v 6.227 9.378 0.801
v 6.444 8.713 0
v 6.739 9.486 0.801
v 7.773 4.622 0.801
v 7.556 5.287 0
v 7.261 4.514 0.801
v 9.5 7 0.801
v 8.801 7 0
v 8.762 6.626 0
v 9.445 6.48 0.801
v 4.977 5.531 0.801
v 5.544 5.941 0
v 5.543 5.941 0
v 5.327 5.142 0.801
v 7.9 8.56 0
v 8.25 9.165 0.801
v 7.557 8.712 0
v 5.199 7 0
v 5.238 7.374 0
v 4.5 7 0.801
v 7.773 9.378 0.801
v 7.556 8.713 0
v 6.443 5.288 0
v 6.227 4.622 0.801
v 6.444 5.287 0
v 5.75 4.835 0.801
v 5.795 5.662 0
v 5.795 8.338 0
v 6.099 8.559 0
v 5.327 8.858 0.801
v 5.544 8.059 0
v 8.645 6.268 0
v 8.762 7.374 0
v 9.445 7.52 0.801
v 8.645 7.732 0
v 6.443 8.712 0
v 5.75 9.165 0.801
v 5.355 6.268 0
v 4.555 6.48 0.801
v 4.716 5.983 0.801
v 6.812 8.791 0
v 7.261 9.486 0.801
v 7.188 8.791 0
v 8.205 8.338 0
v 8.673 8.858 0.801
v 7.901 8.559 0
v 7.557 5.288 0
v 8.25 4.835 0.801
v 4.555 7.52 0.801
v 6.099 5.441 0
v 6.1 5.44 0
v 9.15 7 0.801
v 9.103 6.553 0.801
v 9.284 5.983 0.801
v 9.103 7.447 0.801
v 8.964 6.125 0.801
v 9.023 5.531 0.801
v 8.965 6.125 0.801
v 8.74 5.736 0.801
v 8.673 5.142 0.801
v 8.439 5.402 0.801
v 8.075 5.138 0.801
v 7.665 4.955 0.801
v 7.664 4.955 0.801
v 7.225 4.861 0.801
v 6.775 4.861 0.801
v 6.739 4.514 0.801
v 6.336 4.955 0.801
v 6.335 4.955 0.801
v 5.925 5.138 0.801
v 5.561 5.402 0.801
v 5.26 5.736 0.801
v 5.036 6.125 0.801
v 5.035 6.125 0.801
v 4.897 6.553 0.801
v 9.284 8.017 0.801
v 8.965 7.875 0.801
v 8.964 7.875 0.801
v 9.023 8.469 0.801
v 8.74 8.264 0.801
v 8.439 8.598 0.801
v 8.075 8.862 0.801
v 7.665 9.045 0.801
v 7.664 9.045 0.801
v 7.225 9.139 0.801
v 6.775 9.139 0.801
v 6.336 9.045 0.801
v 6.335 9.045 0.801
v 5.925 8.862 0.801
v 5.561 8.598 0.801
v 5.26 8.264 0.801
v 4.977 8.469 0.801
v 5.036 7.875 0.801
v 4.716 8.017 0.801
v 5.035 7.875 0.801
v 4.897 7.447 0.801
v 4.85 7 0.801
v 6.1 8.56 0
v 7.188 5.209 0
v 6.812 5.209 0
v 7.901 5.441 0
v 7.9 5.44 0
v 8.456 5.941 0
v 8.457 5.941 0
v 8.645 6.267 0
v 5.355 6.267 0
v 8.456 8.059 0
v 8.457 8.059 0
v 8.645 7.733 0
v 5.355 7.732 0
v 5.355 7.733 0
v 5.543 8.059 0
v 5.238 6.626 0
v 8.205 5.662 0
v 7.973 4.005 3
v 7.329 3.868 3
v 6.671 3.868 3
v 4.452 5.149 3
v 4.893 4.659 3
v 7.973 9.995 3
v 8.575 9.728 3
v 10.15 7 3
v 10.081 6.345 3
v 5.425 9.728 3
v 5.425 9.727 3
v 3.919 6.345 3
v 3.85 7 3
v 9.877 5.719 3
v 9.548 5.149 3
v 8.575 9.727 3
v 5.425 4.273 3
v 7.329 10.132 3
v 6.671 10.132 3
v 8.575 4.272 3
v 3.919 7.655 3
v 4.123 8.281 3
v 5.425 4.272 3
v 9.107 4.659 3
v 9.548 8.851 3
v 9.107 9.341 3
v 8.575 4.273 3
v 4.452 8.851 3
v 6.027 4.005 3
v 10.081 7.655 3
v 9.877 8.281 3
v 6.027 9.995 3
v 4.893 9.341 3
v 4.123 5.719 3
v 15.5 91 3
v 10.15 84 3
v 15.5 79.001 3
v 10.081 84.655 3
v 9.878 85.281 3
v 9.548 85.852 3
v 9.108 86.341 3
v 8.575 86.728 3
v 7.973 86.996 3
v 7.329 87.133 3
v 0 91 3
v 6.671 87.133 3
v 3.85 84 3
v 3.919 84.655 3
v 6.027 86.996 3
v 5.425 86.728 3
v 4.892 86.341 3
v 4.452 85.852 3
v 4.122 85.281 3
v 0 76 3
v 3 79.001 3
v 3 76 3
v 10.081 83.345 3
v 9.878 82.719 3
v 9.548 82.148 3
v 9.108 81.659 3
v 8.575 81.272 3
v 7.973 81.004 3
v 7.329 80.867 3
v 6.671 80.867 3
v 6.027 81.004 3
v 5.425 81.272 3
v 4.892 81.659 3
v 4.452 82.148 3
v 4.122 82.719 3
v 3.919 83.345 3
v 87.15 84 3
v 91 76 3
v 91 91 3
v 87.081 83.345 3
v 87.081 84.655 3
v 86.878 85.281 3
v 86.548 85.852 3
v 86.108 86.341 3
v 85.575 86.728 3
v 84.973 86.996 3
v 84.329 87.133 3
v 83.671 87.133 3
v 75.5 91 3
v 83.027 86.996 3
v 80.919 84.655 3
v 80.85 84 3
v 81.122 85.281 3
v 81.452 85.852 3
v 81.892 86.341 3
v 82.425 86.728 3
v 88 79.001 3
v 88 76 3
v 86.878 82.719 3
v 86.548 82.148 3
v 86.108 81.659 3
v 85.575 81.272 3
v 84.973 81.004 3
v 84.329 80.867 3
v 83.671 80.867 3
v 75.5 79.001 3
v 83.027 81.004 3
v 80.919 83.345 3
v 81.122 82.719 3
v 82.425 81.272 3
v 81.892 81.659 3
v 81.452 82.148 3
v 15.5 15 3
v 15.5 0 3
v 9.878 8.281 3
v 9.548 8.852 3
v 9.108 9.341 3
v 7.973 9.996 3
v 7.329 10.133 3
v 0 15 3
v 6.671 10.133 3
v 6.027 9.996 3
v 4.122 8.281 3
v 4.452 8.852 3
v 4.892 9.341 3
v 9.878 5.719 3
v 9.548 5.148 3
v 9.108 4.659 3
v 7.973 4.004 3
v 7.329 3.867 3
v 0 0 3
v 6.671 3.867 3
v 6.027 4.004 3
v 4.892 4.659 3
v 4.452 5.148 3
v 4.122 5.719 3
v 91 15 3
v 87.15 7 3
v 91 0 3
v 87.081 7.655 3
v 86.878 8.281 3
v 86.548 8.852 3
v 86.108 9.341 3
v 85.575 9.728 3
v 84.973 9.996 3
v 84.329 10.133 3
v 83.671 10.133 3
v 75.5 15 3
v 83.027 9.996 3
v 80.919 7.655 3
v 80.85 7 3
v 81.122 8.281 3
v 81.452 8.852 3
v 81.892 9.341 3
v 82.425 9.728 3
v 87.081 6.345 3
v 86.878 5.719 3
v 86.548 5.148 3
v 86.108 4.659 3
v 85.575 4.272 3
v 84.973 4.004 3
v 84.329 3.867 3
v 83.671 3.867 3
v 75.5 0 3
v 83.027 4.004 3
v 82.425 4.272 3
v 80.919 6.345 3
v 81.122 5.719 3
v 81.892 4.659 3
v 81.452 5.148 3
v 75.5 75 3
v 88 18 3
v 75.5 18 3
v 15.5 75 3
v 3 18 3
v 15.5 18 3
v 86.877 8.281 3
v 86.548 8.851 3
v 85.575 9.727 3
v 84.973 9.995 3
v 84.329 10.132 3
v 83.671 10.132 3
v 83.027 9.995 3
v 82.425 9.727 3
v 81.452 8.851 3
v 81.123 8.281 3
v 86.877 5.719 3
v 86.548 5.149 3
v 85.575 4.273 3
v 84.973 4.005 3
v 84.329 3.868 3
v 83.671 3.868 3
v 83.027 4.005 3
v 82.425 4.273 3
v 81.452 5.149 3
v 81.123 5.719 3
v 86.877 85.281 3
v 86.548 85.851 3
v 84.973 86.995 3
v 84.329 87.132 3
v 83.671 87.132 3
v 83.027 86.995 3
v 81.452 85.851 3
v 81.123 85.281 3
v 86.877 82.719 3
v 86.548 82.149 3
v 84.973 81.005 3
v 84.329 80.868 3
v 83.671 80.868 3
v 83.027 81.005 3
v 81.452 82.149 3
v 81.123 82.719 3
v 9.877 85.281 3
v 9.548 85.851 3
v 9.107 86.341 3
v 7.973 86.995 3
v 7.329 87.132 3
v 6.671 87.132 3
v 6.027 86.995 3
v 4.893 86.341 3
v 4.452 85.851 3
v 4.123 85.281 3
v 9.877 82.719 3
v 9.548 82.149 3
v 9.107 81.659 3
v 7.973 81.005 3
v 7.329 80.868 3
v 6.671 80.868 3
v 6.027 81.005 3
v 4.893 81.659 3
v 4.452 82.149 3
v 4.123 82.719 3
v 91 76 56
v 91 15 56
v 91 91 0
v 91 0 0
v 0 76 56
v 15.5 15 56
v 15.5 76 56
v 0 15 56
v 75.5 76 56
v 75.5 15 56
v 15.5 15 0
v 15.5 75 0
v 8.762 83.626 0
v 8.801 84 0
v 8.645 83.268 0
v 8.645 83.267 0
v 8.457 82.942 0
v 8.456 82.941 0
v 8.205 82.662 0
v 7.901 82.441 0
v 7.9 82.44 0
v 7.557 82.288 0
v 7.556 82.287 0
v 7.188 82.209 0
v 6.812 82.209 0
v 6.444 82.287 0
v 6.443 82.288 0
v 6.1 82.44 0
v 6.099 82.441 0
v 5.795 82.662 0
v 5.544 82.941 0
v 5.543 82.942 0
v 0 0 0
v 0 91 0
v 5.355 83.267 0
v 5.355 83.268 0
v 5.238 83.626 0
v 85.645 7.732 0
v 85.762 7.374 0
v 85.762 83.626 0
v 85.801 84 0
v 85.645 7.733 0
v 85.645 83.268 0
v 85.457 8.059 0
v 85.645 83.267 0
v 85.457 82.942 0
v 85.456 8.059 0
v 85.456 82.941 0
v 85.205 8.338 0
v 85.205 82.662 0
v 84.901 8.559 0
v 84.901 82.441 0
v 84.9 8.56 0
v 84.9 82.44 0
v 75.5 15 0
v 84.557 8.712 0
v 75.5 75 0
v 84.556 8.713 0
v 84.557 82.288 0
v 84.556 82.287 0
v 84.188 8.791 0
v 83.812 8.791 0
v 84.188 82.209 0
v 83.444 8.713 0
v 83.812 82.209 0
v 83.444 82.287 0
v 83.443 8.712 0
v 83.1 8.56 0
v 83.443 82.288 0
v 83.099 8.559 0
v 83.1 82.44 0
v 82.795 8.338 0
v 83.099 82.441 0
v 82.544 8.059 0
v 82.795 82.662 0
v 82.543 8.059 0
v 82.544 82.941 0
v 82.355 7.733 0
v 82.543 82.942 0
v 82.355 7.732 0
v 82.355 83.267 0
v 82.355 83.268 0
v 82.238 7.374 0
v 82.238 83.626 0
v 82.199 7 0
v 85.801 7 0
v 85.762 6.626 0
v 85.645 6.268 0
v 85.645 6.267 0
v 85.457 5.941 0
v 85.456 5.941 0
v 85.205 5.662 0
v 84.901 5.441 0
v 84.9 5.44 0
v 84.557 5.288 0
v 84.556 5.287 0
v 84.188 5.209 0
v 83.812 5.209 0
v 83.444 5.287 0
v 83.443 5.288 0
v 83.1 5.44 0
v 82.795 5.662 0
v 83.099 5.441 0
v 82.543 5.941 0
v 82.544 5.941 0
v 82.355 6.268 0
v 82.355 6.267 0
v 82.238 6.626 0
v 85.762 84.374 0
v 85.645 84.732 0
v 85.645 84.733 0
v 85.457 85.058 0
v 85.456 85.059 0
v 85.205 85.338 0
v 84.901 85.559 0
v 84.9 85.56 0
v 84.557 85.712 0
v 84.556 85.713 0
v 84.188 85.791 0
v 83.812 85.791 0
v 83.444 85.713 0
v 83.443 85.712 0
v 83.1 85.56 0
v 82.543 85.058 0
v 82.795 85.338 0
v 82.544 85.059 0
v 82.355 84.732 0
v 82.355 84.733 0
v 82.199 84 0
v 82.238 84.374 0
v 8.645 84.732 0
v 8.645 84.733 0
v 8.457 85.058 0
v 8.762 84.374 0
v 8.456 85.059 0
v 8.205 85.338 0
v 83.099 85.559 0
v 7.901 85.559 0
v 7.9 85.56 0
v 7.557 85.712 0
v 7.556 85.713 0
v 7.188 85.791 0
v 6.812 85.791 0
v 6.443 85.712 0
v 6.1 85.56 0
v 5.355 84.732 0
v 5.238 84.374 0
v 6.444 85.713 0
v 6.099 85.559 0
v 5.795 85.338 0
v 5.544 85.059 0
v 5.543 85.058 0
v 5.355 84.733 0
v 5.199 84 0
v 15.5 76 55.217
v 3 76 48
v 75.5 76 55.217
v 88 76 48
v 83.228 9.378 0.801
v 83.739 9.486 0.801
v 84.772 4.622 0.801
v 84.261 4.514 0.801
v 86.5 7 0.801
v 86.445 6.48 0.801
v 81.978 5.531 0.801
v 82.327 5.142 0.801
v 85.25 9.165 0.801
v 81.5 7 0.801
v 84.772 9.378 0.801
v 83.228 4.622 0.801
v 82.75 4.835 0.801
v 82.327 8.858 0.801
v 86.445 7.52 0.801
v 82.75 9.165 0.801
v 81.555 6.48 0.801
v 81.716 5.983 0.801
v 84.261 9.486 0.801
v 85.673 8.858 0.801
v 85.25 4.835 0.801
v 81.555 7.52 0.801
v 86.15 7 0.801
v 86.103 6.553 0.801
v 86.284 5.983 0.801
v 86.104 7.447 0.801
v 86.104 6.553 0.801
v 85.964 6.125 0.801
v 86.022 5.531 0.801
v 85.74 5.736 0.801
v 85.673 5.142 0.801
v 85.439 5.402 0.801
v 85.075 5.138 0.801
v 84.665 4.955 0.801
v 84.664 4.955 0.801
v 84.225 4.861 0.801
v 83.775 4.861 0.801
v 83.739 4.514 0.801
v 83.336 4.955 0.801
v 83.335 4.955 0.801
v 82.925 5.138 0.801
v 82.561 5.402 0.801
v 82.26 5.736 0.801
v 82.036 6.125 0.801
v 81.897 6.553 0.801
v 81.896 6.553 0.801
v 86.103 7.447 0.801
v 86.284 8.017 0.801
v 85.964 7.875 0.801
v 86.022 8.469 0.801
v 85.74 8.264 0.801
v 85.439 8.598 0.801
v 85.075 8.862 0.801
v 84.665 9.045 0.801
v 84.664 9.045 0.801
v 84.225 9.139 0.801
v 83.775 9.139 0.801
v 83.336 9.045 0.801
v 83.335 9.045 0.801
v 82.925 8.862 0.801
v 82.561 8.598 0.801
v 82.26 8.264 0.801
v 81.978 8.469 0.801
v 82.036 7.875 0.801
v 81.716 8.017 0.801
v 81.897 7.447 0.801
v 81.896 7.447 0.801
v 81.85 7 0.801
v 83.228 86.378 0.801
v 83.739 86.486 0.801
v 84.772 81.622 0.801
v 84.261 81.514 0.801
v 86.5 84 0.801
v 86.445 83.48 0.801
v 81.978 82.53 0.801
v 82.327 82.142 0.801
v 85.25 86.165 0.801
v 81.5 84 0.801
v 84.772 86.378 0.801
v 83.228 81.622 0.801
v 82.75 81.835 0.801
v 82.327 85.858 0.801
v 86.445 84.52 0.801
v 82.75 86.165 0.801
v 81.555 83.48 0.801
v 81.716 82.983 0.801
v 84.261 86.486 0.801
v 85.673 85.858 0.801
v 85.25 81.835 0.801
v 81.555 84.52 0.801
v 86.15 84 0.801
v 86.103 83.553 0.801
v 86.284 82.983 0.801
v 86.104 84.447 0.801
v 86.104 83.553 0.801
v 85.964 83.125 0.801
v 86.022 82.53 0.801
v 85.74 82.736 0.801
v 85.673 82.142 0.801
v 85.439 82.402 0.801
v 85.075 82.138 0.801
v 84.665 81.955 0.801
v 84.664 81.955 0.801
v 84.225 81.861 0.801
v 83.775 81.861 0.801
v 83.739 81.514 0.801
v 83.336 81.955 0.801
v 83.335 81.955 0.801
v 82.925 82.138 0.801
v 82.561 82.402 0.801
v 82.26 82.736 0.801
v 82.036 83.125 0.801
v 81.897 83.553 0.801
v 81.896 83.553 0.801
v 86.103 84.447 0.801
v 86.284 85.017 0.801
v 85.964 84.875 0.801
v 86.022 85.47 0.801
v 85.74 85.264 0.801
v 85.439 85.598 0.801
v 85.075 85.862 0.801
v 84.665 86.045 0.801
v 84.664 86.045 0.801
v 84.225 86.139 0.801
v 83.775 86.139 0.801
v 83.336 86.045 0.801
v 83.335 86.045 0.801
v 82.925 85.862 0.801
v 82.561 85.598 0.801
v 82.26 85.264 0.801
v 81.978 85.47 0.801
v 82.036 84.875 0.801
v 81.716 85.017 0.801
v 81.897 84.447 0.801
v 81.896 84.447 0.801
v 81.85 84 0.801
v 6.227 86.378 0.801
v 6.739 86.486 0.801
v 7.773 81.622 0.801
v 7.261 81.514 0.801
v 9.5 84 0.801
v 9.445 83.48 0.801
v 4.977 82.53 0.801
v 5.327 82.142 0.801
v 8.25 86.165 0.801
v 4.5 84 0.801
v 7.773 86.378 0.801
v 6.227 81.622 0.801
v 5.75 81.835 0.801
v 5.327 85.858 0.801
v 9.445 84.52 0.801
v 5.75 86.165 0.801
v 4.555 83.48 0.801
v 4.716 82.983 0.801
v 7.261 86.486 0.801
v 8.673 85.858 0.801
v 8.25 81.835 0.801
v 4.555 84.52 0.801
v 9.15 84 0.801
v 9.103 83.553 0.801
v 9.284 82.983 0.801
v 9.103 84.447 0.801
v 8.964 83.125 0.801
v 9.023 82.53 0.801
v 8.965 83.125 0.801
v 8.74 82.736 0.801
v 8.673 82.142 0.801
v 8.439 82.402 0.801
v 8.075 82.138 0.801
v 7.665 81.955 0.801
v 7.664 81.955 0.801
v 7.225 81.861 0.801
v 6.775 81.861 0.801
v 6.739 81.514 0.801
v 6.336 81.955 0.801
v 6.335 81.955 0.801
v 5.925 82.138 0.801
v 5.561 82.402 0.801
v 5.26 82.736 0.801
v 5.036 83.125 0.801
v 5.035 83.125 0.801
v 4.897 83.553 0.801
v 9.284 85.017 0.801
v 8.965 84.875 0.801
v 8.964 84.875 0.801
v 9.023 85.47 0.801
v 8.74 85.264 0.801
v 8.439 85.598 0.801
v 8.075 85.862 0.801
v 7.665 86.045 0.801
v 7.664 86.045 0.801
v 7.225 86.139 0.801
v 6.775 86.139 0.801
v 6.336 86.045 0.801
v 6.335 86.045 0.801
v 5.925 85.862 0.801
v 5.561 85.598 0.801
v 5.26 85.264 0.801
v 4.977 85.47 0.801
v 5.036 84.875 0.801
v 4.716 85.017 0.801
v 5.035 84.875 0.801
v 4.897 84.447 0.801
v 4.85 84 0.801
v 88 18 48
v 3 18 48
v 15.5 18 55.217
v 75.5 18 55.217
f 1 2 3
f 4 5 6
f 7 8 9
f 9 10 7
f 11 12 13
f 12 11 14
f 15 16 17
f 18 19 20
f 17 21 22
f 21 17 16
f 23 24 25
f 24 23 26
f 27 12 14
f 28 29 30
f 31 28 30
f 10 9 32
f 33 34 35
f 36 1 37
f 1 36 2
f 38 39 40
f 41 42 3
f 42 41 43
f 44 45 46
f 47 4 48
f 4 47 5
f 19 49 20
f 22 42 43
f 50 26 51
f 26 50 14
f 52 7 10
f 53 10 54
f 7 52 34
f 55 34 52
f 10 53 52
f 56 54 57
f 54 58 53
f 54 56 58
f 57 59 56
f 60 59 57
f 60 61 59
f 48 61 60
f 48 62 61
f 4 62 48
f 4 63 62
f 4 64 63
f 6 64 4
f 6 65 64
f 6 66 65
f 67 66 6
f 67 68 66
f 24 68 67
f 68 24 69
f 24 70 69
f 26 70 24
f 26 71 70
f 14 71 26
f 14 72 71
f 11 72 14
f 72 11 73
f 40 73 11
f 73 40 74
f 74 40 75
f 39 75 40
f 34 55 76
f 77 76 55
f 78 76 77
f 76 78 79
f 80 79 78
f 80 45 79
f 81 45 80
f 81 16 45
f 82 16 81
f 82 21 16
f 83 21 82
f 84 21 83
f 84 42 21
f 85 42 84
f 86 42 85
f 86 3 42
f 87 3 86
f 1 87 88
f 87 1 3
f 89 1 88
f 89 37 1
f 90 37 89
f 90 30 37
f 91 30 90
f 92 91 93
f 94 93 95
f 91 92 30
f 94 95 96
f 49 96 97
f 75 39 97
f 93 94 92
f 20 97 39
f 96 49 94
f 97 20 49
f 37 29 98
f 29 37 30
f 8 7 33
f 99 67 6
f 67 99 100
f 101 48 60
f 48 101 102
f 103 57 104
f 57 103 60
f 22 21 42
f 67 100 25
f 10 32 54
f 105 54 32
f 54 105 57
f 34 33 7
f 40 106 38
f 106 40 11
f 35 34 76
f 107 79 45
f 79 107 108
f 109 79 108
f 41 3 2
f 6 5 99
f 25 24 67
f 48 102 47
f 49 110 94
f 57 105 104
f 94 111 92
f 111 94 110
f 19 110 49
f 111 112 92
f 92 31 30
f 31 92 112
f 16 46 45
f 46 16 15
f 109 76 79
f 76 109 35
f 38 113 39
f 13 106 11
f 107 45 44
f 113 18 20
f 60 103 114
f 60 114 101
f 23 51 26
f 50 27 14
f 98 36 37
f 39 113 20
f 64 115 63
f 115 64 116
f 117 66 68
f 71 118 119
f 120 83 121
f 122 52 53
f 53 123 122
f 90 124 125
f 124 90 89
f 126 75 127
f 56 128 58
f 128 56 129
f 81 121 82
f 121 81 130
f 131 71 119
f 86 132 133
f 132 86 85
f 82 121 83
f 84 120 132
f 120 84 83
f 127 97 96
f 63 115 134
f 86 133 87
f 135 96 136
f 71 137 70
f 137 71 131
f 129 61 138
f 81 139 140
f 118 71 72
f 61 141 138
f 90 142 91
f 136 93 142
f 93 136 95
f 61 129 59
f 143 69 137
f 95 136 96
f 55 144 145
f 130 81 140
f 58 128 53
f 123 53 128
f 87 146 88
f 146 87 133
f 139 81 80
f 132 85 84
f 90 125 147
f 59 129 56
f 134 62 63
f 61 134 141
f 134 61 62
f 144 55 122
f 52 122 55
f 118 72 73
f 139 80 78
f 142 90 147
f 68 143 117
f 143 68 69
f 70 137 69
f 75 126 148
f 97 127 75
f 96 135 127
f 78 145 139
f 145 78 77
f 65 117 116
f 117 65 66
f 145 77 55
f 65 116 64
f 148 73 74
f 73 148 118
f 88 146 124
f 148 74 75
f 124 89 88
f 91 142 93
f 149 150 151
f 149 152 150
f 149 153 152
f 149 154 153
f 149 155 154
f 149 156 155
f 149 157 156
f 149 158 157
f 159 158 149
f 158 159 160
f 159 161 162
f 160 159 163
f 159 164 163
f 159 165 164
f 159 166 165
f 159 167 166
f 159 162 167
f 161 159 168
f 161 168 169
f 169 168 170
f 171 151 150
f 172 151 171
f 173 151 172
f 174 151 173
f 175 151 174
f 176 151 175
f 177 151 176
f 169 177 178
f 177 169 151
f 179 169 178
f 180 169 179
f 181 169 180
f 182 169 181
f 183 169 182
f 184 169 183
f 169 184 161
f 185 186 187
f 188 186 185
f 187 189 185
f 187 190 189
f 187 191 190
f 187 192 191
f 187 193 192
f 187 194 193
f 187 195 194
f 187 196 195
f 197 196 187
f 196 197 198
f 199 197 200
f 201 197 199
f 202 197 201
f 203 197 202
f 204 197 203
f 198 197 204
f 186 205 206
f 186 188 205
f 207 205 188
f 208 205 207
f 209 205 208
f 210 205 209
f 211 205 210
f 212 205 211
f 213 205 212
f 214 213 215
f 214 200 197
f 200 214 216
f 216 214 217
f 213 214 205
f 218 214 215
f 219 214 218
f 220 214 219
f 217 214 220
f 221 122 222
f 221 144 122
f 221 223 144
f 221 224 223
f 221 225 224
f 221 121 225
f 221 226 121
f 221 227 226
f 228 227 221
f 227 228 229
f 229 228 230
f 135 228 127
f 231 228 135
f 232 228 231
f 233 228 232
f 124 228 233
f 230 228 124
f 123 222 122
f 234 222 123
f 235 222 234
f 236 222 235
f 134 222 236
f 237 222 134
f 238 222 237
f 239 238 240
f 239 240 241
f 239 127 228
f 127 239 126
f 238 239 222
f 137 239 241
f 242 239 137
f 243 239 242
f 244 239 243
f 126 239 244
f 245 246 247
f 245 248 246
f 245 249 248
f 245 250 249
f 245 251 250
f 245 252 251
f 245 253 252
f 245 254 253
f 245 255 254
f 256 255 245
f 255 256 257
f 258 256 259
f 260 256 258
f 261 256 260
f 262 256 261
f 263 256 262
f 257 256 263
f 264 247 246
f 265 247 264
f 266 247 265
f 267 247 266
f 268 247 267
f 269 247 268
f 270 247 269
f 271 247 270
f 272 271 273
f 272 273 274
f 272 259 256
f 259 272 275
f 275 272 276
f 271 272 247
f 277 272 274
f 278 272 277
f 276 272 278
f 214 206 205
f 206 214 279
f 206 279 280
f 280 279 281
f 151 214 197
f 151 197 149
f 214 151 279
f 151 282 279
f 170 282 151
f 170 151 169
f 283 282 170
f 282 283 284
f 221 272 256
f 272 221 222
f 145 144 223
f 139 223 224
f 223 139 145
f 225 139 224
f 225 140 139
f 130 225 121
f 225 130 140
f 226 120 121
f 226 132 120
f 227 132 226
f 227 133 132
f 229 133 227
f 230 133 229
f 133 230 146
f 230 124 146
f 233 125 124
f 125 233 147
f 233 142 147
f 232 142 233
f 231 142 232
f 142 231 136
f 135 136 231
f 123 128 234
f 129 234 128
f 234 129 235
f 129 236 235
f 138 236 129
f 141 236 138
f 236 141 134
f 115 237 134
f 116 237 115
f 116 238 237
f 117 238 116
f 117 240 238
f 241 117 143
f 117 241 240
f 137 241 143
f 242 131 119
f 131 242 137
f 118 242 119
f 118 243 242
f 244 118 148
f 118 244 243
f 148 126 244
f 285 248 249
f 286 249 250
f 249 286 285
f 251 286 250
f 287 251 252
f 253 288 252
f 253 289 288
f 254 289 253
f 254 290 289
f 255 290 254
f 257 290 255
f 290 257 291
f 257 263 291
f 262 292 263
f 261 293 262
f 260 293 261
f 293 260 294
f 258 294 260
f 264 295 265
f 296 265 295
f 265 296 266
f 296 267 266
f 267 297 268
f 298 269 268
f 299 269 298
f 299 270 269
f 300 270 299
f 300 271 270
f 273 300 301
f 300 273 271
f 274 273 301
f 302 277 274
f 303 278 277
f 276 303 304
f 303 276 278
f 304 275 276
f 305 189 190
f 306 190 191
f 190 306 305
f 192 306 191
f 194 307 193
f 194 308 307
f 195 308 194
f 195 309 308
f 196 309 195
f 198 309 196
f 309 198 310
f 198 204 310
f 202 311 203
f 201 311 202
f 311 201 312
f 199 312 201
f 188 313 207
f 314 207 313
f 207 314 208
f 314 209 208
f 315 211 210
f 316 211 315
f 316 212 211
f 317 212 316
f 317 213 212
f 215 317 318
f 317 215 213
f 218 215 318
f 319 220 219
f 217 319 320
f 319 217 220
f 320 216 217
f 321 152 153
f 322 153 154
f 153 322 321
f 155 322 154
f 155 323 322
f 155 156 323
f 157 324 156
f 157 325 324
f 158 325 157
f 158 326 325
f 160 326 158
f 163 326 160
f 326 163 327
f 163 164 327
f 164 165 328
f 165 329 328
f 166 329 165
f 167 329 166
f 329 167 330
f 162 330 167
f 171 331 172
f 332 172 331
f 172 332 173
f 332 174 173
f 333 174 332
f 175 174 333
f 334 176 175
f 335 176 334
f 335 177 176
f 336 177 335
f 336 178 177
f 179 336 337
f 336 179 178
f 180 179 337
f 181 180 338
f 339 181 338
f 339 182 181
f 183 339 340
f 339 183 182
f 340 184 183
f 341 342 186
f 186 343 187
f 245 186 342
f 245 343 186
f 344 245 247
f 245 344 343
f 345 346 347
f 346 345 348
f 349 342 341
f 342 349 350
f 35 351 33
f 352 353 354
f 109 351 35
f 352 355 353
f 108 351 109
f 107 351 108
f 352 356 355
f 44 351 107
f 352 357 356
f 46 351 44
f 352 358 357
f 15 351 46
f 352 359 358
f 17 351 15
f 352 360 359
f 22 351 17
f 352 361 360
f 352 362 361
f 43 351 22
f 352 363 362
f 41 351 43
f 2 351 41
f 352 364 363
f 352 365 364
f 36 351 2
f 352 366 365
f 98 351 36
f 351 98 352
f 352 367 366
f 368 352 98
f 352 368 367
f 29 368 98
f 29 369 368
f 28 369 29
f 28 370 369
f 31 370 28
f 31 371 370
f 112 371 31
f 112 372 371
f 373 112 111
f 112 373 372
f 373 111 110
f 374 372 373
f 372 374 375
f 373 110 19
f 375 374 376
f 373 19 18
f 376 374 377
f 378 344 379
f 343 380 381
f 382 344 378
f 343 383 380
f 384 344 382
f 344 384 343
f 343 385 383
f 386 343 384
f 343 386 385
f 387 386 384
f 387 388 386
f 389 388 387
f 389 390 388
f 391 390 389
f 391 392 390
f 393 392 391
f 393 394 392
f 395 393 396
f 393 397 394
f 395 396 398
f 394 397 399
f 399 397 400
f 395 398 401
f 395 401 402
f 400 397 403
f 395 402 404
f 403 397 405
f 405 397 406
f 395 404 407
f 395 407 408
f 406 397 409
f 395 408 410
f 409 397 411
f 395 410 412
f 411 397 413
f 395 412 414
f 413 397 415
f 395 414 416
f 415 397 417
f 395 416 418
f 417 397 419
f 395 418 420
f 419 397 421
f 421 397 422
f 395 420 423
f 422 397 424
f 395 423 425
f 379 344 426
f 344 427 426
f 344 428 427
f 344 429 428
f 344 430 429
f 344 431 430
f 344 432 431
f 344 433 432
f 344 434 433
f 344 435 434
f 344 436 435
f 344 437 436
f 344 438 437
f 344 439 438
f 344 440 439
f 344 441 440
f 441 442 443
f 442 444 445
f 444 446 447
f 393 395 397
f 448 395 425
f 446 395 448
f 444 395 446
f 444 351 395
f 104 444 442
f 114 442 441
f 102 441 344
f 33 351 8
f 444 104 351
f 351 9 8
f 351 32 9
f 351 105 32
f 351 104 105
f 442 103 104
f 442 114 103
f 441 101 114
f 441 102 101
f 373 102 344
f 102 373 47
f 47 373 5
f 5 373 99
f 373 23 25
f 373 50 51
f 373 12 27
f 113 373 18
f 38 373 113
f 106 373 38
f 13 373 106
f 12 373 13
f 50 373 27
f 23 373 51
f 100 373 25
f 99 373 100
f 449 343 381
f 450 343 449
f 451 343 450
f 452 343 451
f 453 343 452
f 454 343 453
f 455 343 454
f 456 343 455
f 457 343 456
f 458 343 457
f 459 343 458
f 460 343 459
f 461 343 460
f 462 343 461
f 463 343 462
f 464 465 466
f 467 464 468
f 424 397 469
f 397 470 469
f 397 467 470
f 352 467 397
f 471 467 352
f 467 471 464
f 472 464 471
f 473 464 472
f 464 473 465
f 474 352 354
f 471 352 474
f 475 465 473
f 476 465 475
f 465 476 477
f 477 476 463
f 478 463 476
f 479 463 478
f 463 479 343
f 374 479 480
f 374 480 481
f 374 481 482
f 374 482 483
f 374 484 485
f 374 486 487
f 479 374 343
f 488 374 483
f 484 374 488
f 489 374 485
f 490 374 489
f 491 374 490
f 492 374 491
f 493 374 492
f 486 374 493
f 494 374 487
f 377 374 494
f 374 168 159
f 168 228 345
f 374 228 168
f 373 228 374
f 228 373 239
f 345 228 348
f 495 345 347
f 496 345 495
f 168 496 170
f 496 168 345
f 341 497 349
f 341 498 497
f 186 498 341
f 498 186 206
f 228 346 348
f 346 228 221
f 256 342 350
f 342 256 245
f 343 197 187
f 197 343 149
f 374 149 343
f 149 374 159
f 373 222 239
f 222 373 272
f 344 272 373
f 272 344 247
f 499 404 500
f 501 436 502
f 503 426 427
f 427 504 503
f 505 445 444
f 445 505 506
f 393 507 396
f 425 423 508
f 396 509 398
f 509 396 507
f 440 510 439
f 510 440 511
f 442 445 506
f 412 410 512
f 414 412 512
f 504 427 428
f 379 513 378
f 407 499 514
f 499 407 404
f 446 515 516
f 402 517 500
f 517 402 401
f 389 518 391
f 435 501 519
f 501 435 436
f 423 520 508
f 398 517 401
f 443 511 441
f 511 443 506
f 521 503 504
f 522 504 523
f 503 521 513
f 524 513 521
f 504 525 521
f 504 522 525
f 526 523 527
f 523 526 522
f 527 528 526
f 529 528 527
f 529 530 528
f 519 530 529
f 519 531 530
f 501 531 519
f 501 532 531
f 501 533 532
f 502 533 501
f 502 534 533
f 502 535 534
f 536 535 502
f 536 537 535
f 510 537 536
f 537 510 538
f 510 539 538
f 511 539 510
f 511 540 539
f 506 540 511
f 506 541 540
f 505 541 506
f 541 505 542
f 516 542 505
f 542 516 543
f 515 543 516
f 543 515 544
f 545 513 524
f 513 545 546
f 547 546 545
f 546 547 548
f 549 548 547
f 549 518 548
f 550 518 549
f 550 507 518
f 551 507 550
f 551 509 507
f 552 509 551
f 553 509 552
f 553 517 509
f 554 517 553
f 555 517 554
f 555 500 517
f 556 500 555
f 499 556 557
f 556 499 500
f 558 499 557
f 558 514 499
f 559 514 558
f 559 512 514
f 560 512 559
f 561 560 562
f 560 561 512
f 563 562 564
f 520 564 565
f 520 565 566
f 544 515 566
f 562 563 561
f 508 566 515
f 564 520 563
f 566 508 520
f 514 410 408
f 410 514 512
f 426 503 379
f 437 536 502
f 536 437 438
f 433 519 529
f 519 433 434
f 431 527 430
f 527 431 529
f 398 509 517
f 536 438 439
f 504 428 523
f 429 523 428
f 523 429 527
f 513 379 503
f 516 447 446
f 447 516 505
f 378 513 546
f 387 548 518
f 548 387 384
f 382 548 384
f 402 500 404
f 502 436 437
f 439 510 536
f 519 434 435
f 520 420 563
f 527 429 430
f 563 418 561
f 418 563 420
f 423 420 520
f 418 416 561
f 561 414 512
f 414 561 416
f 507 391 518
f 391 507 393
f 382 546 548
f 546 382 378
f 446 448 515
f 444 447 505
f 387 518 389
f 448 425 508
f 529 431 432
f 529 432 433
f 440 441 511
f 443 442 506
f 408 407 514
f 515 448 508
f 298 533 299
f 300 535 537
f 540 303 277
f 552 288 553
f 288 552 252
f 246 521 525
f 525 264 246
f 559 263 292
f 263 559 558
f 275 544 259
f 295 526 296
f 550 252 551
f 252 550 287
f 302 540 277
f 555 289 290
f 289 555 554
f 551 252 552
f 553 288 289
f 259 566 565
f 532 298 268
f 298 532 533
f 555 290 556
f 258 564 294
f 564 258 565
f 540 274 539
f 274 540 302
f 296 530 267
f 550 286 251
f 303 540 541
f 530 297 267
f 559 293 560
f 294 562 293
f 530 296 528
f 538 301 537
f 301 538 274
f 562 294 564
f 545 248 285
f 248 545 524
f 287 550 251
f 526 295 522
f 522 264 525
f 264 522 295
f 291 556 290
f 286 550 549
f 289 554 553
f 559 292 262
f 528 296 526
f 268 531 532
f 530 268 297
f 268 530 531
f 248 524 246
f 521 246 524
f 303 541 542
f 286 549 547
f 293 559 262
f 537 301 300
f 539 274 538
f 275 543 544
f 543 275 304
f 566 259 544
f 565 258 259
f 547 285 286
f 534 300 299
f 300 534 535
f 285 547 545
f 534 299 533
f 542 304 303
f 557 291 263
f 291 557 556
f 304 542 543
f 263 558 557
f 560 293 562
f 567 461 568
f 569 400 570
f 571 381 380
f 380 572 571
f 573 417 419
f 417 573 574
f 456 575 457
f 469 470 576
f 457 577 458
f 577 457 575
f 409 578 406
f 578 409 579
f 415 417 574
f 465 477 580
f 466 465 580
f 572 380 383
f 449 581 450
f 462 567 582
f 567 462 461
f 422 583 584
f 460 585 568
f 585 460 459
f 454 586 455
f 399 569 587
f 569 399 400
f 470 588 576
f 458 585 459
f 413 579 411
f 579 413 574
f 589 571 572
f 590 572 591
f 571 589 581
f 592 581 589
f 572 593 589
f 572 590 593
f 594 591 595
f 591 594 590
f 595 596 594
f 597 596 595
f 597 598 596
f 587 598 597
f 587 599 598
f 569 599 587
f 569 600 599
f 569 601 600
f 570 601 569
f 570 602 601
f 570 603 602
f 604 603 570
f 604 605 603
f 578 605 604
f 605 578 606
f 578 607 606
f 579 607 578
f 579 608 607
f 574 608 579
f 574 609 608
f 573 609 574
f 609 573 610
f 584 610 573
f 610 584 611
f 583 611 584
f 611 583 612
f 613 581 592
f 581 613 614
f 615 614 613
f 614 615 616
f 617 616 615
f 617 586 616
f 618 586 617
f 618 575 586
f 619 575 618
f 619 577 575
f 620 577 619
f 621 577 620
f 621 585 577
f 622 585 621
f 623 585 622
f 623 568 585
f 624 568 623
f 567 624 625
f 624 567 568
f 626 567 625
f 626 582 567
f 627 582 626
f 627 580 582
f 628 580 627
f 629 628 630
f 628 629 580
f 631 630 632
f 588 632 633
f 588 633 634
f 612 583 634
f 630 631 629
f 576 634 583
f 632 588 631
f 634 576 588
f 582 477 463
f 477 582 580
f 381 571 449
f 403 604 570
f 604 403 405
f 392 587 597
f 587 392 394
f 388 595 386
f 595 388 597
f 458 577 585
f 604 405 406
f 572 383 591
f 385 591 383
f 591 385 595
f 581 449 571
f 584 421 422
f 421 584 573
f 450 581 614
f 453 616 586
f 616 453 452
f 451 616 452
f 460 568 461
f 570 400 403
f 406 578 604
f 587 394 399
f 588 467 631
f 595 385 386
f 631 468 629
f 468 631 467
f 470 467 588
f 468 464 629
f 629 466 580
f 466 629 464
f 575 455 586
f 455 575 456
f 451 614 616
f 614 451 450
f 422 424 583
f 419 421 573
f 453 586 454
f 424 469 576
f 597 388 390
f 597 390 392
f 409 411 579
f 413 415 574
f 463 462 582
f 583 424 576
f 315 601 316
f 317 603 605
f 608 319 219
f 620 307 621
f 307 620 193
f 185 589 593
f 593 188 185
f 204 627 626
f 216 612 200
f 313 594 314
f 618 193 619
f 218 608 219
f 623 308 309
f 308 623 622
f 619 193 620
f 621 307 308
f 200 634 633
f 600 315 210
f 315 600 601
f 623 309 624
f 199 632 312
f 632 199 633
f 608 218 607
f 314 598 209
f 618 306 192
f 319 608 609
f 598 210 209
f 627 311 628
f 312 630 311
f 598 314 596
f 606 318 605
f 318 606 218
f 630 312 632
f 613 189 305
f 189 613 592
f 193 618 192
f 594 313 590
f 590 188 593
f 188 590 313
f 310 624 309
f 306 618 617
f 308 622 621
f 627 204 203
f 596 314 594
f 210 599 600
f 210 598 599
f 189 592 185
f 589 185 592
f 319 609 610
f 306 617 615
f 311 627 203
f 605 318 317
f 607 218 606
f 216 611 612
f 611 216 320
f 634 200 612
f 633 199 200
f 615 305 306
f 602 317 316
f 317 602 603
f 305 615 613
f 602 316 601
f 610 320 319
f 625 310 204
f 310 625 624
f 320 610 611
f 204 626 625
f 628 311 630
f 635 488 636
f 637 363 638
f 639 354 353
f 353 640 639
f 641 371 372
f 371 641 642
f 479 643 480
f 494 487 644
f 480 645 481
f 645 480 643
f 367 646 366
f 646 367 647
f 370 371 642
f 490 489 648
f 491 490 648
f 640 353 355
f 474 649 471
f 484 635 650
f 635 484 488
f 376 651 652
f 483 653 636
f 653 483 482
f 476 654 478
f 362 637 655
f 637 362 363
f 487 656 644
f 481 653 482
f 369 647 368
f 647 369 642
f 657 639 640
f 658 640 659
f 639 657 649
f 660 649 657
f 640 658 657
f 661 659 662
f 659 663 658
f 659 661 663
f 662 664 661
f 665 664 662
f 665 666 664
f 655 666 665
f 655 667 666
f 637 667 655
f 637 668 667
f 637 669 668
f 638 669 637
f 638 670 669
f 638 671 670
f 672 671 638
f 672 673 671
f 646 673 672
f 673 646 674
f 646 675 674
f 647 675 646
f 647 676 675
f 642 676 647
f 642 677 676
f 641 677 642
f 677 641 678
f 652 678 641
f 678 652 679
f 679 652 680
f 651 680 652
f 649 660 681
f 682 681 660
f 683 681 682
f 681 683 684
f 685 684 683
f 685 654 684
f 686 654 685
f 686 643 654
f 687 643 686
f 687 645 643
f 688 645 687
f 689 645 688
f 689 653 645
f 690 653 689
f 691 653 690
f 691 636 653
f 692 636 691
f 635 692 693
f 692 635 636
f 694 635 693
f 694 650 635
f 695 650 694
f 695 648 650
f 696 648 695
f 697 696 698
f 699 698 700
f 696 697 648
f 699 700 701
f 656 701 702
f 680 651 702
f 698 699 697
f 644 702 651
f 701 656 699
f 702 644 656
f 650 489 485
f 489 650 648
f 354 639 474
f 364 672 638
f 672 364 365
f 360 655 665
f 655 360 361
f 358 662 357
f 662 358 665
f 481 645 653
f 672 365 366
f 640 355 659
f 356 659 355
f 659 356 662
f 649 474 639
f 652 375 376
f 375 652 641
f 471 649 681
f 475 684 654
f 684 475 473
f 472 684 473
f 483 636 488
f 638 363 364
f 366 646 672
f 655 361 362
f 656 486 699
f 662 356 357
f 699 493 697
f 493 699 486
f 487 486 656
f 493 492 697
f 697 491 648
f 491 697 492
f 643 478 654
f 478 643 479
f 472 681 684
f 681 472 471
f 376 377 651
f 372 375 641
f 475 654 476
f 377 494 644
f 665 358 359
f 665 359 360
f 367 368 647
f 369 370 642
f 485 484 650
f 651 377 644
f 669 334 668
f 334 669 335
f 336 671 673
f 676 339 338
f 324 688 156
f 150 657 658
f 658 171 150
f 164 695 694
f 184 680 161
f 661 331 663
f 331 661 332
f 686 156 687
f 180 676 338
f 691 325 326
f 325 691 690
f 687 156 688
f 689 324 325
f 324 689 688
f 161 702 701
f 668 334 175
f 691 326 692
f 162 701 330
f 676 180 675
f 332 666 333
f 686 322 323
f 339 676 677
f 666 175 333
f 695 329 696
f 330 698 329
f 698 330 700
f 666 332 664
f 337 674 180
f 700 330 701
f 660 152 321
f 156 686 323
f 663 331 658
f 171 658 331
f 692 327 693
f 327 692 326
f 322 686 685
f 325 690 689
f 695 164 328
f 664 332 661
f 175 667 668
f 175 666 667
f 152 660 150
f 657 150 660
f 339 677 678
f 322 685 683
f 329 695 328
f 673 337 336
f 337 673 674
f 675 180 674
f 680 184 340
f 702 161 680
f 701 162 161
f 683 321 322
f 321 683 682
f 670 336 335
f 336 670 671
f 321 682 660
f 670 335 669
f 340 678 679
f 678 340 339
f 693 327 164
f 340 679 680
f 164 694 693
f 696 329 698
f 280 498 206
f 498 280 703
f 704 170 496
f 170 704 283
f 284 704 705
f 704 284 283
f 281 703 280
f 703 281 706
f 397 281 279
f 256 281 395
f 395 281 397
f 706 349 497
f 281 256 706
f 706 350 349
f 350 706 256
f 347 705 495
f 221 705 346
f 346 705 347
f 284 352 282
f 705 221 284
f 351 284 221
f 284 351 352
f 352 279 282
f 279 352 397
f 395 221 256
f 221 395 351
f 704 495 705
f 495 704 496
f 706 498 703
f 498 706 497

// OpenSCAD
//
// ktRack30
//
//


gap1 = 0.001;
gap2 = 0.002;

th = 2;



A();


module A()
difference()
{
    union()
    {
        translate([0, 15, 0]) cube([85+6,  55+6, 45+6+5]);
        translate([0, 0, 0]) cube([85+6,  85+6, 3]);
    }
    translate([3, 15+3, 3]) cube([85,  55+6+gap1, 45]);
    translate([(85+6-60)/2, -3, 3]) cube([60,  100, 100]);
    translate([(85+6-60)/2, 15, -3]) cube([60,  60, 100]);
    translate([3, 15+3, 45+3]) rotate([0, 90-30, 0]) cube([20,  70, 20]);
    translate([85+6-3, 15+3, 45+3]) rotate([0, 180+30, 0]) cube([20,  70, 20]);
    
    translate([7, 7, 3]) rotate([180, 0, 0]) rear_screw_hole();
    translate([85+6-7, 7, 3]) rotate([180, 0, 0]) rear_screw_hole();
    translate([85+6-7, 85+6-7, 3]) rotate([180, 0, 0]) rear_screw_hole();
    translate([7, 85+6-7, 3]) rotate([180, 0, 0]) rear_screw_hole();   
}




module rear_screw_hole()
{
    translate([0, 0, 3]) cylinder(5, 1.8, 1.8, $fn=30);
    translate([0, 0, 2.2-gap1]) cylinder(0.8+gap2, 1.8+0.7, 1.8, $fn=30);
    translate([0, 0, -gap1]) cylinder(2.2+gap1, 2.75+0.4, 2.75-0.6, $fn=30);
    translate([0, 0, -10]) cylinder(10, 2.75+0.4, 2.75+0.4, $fn=30);
}
